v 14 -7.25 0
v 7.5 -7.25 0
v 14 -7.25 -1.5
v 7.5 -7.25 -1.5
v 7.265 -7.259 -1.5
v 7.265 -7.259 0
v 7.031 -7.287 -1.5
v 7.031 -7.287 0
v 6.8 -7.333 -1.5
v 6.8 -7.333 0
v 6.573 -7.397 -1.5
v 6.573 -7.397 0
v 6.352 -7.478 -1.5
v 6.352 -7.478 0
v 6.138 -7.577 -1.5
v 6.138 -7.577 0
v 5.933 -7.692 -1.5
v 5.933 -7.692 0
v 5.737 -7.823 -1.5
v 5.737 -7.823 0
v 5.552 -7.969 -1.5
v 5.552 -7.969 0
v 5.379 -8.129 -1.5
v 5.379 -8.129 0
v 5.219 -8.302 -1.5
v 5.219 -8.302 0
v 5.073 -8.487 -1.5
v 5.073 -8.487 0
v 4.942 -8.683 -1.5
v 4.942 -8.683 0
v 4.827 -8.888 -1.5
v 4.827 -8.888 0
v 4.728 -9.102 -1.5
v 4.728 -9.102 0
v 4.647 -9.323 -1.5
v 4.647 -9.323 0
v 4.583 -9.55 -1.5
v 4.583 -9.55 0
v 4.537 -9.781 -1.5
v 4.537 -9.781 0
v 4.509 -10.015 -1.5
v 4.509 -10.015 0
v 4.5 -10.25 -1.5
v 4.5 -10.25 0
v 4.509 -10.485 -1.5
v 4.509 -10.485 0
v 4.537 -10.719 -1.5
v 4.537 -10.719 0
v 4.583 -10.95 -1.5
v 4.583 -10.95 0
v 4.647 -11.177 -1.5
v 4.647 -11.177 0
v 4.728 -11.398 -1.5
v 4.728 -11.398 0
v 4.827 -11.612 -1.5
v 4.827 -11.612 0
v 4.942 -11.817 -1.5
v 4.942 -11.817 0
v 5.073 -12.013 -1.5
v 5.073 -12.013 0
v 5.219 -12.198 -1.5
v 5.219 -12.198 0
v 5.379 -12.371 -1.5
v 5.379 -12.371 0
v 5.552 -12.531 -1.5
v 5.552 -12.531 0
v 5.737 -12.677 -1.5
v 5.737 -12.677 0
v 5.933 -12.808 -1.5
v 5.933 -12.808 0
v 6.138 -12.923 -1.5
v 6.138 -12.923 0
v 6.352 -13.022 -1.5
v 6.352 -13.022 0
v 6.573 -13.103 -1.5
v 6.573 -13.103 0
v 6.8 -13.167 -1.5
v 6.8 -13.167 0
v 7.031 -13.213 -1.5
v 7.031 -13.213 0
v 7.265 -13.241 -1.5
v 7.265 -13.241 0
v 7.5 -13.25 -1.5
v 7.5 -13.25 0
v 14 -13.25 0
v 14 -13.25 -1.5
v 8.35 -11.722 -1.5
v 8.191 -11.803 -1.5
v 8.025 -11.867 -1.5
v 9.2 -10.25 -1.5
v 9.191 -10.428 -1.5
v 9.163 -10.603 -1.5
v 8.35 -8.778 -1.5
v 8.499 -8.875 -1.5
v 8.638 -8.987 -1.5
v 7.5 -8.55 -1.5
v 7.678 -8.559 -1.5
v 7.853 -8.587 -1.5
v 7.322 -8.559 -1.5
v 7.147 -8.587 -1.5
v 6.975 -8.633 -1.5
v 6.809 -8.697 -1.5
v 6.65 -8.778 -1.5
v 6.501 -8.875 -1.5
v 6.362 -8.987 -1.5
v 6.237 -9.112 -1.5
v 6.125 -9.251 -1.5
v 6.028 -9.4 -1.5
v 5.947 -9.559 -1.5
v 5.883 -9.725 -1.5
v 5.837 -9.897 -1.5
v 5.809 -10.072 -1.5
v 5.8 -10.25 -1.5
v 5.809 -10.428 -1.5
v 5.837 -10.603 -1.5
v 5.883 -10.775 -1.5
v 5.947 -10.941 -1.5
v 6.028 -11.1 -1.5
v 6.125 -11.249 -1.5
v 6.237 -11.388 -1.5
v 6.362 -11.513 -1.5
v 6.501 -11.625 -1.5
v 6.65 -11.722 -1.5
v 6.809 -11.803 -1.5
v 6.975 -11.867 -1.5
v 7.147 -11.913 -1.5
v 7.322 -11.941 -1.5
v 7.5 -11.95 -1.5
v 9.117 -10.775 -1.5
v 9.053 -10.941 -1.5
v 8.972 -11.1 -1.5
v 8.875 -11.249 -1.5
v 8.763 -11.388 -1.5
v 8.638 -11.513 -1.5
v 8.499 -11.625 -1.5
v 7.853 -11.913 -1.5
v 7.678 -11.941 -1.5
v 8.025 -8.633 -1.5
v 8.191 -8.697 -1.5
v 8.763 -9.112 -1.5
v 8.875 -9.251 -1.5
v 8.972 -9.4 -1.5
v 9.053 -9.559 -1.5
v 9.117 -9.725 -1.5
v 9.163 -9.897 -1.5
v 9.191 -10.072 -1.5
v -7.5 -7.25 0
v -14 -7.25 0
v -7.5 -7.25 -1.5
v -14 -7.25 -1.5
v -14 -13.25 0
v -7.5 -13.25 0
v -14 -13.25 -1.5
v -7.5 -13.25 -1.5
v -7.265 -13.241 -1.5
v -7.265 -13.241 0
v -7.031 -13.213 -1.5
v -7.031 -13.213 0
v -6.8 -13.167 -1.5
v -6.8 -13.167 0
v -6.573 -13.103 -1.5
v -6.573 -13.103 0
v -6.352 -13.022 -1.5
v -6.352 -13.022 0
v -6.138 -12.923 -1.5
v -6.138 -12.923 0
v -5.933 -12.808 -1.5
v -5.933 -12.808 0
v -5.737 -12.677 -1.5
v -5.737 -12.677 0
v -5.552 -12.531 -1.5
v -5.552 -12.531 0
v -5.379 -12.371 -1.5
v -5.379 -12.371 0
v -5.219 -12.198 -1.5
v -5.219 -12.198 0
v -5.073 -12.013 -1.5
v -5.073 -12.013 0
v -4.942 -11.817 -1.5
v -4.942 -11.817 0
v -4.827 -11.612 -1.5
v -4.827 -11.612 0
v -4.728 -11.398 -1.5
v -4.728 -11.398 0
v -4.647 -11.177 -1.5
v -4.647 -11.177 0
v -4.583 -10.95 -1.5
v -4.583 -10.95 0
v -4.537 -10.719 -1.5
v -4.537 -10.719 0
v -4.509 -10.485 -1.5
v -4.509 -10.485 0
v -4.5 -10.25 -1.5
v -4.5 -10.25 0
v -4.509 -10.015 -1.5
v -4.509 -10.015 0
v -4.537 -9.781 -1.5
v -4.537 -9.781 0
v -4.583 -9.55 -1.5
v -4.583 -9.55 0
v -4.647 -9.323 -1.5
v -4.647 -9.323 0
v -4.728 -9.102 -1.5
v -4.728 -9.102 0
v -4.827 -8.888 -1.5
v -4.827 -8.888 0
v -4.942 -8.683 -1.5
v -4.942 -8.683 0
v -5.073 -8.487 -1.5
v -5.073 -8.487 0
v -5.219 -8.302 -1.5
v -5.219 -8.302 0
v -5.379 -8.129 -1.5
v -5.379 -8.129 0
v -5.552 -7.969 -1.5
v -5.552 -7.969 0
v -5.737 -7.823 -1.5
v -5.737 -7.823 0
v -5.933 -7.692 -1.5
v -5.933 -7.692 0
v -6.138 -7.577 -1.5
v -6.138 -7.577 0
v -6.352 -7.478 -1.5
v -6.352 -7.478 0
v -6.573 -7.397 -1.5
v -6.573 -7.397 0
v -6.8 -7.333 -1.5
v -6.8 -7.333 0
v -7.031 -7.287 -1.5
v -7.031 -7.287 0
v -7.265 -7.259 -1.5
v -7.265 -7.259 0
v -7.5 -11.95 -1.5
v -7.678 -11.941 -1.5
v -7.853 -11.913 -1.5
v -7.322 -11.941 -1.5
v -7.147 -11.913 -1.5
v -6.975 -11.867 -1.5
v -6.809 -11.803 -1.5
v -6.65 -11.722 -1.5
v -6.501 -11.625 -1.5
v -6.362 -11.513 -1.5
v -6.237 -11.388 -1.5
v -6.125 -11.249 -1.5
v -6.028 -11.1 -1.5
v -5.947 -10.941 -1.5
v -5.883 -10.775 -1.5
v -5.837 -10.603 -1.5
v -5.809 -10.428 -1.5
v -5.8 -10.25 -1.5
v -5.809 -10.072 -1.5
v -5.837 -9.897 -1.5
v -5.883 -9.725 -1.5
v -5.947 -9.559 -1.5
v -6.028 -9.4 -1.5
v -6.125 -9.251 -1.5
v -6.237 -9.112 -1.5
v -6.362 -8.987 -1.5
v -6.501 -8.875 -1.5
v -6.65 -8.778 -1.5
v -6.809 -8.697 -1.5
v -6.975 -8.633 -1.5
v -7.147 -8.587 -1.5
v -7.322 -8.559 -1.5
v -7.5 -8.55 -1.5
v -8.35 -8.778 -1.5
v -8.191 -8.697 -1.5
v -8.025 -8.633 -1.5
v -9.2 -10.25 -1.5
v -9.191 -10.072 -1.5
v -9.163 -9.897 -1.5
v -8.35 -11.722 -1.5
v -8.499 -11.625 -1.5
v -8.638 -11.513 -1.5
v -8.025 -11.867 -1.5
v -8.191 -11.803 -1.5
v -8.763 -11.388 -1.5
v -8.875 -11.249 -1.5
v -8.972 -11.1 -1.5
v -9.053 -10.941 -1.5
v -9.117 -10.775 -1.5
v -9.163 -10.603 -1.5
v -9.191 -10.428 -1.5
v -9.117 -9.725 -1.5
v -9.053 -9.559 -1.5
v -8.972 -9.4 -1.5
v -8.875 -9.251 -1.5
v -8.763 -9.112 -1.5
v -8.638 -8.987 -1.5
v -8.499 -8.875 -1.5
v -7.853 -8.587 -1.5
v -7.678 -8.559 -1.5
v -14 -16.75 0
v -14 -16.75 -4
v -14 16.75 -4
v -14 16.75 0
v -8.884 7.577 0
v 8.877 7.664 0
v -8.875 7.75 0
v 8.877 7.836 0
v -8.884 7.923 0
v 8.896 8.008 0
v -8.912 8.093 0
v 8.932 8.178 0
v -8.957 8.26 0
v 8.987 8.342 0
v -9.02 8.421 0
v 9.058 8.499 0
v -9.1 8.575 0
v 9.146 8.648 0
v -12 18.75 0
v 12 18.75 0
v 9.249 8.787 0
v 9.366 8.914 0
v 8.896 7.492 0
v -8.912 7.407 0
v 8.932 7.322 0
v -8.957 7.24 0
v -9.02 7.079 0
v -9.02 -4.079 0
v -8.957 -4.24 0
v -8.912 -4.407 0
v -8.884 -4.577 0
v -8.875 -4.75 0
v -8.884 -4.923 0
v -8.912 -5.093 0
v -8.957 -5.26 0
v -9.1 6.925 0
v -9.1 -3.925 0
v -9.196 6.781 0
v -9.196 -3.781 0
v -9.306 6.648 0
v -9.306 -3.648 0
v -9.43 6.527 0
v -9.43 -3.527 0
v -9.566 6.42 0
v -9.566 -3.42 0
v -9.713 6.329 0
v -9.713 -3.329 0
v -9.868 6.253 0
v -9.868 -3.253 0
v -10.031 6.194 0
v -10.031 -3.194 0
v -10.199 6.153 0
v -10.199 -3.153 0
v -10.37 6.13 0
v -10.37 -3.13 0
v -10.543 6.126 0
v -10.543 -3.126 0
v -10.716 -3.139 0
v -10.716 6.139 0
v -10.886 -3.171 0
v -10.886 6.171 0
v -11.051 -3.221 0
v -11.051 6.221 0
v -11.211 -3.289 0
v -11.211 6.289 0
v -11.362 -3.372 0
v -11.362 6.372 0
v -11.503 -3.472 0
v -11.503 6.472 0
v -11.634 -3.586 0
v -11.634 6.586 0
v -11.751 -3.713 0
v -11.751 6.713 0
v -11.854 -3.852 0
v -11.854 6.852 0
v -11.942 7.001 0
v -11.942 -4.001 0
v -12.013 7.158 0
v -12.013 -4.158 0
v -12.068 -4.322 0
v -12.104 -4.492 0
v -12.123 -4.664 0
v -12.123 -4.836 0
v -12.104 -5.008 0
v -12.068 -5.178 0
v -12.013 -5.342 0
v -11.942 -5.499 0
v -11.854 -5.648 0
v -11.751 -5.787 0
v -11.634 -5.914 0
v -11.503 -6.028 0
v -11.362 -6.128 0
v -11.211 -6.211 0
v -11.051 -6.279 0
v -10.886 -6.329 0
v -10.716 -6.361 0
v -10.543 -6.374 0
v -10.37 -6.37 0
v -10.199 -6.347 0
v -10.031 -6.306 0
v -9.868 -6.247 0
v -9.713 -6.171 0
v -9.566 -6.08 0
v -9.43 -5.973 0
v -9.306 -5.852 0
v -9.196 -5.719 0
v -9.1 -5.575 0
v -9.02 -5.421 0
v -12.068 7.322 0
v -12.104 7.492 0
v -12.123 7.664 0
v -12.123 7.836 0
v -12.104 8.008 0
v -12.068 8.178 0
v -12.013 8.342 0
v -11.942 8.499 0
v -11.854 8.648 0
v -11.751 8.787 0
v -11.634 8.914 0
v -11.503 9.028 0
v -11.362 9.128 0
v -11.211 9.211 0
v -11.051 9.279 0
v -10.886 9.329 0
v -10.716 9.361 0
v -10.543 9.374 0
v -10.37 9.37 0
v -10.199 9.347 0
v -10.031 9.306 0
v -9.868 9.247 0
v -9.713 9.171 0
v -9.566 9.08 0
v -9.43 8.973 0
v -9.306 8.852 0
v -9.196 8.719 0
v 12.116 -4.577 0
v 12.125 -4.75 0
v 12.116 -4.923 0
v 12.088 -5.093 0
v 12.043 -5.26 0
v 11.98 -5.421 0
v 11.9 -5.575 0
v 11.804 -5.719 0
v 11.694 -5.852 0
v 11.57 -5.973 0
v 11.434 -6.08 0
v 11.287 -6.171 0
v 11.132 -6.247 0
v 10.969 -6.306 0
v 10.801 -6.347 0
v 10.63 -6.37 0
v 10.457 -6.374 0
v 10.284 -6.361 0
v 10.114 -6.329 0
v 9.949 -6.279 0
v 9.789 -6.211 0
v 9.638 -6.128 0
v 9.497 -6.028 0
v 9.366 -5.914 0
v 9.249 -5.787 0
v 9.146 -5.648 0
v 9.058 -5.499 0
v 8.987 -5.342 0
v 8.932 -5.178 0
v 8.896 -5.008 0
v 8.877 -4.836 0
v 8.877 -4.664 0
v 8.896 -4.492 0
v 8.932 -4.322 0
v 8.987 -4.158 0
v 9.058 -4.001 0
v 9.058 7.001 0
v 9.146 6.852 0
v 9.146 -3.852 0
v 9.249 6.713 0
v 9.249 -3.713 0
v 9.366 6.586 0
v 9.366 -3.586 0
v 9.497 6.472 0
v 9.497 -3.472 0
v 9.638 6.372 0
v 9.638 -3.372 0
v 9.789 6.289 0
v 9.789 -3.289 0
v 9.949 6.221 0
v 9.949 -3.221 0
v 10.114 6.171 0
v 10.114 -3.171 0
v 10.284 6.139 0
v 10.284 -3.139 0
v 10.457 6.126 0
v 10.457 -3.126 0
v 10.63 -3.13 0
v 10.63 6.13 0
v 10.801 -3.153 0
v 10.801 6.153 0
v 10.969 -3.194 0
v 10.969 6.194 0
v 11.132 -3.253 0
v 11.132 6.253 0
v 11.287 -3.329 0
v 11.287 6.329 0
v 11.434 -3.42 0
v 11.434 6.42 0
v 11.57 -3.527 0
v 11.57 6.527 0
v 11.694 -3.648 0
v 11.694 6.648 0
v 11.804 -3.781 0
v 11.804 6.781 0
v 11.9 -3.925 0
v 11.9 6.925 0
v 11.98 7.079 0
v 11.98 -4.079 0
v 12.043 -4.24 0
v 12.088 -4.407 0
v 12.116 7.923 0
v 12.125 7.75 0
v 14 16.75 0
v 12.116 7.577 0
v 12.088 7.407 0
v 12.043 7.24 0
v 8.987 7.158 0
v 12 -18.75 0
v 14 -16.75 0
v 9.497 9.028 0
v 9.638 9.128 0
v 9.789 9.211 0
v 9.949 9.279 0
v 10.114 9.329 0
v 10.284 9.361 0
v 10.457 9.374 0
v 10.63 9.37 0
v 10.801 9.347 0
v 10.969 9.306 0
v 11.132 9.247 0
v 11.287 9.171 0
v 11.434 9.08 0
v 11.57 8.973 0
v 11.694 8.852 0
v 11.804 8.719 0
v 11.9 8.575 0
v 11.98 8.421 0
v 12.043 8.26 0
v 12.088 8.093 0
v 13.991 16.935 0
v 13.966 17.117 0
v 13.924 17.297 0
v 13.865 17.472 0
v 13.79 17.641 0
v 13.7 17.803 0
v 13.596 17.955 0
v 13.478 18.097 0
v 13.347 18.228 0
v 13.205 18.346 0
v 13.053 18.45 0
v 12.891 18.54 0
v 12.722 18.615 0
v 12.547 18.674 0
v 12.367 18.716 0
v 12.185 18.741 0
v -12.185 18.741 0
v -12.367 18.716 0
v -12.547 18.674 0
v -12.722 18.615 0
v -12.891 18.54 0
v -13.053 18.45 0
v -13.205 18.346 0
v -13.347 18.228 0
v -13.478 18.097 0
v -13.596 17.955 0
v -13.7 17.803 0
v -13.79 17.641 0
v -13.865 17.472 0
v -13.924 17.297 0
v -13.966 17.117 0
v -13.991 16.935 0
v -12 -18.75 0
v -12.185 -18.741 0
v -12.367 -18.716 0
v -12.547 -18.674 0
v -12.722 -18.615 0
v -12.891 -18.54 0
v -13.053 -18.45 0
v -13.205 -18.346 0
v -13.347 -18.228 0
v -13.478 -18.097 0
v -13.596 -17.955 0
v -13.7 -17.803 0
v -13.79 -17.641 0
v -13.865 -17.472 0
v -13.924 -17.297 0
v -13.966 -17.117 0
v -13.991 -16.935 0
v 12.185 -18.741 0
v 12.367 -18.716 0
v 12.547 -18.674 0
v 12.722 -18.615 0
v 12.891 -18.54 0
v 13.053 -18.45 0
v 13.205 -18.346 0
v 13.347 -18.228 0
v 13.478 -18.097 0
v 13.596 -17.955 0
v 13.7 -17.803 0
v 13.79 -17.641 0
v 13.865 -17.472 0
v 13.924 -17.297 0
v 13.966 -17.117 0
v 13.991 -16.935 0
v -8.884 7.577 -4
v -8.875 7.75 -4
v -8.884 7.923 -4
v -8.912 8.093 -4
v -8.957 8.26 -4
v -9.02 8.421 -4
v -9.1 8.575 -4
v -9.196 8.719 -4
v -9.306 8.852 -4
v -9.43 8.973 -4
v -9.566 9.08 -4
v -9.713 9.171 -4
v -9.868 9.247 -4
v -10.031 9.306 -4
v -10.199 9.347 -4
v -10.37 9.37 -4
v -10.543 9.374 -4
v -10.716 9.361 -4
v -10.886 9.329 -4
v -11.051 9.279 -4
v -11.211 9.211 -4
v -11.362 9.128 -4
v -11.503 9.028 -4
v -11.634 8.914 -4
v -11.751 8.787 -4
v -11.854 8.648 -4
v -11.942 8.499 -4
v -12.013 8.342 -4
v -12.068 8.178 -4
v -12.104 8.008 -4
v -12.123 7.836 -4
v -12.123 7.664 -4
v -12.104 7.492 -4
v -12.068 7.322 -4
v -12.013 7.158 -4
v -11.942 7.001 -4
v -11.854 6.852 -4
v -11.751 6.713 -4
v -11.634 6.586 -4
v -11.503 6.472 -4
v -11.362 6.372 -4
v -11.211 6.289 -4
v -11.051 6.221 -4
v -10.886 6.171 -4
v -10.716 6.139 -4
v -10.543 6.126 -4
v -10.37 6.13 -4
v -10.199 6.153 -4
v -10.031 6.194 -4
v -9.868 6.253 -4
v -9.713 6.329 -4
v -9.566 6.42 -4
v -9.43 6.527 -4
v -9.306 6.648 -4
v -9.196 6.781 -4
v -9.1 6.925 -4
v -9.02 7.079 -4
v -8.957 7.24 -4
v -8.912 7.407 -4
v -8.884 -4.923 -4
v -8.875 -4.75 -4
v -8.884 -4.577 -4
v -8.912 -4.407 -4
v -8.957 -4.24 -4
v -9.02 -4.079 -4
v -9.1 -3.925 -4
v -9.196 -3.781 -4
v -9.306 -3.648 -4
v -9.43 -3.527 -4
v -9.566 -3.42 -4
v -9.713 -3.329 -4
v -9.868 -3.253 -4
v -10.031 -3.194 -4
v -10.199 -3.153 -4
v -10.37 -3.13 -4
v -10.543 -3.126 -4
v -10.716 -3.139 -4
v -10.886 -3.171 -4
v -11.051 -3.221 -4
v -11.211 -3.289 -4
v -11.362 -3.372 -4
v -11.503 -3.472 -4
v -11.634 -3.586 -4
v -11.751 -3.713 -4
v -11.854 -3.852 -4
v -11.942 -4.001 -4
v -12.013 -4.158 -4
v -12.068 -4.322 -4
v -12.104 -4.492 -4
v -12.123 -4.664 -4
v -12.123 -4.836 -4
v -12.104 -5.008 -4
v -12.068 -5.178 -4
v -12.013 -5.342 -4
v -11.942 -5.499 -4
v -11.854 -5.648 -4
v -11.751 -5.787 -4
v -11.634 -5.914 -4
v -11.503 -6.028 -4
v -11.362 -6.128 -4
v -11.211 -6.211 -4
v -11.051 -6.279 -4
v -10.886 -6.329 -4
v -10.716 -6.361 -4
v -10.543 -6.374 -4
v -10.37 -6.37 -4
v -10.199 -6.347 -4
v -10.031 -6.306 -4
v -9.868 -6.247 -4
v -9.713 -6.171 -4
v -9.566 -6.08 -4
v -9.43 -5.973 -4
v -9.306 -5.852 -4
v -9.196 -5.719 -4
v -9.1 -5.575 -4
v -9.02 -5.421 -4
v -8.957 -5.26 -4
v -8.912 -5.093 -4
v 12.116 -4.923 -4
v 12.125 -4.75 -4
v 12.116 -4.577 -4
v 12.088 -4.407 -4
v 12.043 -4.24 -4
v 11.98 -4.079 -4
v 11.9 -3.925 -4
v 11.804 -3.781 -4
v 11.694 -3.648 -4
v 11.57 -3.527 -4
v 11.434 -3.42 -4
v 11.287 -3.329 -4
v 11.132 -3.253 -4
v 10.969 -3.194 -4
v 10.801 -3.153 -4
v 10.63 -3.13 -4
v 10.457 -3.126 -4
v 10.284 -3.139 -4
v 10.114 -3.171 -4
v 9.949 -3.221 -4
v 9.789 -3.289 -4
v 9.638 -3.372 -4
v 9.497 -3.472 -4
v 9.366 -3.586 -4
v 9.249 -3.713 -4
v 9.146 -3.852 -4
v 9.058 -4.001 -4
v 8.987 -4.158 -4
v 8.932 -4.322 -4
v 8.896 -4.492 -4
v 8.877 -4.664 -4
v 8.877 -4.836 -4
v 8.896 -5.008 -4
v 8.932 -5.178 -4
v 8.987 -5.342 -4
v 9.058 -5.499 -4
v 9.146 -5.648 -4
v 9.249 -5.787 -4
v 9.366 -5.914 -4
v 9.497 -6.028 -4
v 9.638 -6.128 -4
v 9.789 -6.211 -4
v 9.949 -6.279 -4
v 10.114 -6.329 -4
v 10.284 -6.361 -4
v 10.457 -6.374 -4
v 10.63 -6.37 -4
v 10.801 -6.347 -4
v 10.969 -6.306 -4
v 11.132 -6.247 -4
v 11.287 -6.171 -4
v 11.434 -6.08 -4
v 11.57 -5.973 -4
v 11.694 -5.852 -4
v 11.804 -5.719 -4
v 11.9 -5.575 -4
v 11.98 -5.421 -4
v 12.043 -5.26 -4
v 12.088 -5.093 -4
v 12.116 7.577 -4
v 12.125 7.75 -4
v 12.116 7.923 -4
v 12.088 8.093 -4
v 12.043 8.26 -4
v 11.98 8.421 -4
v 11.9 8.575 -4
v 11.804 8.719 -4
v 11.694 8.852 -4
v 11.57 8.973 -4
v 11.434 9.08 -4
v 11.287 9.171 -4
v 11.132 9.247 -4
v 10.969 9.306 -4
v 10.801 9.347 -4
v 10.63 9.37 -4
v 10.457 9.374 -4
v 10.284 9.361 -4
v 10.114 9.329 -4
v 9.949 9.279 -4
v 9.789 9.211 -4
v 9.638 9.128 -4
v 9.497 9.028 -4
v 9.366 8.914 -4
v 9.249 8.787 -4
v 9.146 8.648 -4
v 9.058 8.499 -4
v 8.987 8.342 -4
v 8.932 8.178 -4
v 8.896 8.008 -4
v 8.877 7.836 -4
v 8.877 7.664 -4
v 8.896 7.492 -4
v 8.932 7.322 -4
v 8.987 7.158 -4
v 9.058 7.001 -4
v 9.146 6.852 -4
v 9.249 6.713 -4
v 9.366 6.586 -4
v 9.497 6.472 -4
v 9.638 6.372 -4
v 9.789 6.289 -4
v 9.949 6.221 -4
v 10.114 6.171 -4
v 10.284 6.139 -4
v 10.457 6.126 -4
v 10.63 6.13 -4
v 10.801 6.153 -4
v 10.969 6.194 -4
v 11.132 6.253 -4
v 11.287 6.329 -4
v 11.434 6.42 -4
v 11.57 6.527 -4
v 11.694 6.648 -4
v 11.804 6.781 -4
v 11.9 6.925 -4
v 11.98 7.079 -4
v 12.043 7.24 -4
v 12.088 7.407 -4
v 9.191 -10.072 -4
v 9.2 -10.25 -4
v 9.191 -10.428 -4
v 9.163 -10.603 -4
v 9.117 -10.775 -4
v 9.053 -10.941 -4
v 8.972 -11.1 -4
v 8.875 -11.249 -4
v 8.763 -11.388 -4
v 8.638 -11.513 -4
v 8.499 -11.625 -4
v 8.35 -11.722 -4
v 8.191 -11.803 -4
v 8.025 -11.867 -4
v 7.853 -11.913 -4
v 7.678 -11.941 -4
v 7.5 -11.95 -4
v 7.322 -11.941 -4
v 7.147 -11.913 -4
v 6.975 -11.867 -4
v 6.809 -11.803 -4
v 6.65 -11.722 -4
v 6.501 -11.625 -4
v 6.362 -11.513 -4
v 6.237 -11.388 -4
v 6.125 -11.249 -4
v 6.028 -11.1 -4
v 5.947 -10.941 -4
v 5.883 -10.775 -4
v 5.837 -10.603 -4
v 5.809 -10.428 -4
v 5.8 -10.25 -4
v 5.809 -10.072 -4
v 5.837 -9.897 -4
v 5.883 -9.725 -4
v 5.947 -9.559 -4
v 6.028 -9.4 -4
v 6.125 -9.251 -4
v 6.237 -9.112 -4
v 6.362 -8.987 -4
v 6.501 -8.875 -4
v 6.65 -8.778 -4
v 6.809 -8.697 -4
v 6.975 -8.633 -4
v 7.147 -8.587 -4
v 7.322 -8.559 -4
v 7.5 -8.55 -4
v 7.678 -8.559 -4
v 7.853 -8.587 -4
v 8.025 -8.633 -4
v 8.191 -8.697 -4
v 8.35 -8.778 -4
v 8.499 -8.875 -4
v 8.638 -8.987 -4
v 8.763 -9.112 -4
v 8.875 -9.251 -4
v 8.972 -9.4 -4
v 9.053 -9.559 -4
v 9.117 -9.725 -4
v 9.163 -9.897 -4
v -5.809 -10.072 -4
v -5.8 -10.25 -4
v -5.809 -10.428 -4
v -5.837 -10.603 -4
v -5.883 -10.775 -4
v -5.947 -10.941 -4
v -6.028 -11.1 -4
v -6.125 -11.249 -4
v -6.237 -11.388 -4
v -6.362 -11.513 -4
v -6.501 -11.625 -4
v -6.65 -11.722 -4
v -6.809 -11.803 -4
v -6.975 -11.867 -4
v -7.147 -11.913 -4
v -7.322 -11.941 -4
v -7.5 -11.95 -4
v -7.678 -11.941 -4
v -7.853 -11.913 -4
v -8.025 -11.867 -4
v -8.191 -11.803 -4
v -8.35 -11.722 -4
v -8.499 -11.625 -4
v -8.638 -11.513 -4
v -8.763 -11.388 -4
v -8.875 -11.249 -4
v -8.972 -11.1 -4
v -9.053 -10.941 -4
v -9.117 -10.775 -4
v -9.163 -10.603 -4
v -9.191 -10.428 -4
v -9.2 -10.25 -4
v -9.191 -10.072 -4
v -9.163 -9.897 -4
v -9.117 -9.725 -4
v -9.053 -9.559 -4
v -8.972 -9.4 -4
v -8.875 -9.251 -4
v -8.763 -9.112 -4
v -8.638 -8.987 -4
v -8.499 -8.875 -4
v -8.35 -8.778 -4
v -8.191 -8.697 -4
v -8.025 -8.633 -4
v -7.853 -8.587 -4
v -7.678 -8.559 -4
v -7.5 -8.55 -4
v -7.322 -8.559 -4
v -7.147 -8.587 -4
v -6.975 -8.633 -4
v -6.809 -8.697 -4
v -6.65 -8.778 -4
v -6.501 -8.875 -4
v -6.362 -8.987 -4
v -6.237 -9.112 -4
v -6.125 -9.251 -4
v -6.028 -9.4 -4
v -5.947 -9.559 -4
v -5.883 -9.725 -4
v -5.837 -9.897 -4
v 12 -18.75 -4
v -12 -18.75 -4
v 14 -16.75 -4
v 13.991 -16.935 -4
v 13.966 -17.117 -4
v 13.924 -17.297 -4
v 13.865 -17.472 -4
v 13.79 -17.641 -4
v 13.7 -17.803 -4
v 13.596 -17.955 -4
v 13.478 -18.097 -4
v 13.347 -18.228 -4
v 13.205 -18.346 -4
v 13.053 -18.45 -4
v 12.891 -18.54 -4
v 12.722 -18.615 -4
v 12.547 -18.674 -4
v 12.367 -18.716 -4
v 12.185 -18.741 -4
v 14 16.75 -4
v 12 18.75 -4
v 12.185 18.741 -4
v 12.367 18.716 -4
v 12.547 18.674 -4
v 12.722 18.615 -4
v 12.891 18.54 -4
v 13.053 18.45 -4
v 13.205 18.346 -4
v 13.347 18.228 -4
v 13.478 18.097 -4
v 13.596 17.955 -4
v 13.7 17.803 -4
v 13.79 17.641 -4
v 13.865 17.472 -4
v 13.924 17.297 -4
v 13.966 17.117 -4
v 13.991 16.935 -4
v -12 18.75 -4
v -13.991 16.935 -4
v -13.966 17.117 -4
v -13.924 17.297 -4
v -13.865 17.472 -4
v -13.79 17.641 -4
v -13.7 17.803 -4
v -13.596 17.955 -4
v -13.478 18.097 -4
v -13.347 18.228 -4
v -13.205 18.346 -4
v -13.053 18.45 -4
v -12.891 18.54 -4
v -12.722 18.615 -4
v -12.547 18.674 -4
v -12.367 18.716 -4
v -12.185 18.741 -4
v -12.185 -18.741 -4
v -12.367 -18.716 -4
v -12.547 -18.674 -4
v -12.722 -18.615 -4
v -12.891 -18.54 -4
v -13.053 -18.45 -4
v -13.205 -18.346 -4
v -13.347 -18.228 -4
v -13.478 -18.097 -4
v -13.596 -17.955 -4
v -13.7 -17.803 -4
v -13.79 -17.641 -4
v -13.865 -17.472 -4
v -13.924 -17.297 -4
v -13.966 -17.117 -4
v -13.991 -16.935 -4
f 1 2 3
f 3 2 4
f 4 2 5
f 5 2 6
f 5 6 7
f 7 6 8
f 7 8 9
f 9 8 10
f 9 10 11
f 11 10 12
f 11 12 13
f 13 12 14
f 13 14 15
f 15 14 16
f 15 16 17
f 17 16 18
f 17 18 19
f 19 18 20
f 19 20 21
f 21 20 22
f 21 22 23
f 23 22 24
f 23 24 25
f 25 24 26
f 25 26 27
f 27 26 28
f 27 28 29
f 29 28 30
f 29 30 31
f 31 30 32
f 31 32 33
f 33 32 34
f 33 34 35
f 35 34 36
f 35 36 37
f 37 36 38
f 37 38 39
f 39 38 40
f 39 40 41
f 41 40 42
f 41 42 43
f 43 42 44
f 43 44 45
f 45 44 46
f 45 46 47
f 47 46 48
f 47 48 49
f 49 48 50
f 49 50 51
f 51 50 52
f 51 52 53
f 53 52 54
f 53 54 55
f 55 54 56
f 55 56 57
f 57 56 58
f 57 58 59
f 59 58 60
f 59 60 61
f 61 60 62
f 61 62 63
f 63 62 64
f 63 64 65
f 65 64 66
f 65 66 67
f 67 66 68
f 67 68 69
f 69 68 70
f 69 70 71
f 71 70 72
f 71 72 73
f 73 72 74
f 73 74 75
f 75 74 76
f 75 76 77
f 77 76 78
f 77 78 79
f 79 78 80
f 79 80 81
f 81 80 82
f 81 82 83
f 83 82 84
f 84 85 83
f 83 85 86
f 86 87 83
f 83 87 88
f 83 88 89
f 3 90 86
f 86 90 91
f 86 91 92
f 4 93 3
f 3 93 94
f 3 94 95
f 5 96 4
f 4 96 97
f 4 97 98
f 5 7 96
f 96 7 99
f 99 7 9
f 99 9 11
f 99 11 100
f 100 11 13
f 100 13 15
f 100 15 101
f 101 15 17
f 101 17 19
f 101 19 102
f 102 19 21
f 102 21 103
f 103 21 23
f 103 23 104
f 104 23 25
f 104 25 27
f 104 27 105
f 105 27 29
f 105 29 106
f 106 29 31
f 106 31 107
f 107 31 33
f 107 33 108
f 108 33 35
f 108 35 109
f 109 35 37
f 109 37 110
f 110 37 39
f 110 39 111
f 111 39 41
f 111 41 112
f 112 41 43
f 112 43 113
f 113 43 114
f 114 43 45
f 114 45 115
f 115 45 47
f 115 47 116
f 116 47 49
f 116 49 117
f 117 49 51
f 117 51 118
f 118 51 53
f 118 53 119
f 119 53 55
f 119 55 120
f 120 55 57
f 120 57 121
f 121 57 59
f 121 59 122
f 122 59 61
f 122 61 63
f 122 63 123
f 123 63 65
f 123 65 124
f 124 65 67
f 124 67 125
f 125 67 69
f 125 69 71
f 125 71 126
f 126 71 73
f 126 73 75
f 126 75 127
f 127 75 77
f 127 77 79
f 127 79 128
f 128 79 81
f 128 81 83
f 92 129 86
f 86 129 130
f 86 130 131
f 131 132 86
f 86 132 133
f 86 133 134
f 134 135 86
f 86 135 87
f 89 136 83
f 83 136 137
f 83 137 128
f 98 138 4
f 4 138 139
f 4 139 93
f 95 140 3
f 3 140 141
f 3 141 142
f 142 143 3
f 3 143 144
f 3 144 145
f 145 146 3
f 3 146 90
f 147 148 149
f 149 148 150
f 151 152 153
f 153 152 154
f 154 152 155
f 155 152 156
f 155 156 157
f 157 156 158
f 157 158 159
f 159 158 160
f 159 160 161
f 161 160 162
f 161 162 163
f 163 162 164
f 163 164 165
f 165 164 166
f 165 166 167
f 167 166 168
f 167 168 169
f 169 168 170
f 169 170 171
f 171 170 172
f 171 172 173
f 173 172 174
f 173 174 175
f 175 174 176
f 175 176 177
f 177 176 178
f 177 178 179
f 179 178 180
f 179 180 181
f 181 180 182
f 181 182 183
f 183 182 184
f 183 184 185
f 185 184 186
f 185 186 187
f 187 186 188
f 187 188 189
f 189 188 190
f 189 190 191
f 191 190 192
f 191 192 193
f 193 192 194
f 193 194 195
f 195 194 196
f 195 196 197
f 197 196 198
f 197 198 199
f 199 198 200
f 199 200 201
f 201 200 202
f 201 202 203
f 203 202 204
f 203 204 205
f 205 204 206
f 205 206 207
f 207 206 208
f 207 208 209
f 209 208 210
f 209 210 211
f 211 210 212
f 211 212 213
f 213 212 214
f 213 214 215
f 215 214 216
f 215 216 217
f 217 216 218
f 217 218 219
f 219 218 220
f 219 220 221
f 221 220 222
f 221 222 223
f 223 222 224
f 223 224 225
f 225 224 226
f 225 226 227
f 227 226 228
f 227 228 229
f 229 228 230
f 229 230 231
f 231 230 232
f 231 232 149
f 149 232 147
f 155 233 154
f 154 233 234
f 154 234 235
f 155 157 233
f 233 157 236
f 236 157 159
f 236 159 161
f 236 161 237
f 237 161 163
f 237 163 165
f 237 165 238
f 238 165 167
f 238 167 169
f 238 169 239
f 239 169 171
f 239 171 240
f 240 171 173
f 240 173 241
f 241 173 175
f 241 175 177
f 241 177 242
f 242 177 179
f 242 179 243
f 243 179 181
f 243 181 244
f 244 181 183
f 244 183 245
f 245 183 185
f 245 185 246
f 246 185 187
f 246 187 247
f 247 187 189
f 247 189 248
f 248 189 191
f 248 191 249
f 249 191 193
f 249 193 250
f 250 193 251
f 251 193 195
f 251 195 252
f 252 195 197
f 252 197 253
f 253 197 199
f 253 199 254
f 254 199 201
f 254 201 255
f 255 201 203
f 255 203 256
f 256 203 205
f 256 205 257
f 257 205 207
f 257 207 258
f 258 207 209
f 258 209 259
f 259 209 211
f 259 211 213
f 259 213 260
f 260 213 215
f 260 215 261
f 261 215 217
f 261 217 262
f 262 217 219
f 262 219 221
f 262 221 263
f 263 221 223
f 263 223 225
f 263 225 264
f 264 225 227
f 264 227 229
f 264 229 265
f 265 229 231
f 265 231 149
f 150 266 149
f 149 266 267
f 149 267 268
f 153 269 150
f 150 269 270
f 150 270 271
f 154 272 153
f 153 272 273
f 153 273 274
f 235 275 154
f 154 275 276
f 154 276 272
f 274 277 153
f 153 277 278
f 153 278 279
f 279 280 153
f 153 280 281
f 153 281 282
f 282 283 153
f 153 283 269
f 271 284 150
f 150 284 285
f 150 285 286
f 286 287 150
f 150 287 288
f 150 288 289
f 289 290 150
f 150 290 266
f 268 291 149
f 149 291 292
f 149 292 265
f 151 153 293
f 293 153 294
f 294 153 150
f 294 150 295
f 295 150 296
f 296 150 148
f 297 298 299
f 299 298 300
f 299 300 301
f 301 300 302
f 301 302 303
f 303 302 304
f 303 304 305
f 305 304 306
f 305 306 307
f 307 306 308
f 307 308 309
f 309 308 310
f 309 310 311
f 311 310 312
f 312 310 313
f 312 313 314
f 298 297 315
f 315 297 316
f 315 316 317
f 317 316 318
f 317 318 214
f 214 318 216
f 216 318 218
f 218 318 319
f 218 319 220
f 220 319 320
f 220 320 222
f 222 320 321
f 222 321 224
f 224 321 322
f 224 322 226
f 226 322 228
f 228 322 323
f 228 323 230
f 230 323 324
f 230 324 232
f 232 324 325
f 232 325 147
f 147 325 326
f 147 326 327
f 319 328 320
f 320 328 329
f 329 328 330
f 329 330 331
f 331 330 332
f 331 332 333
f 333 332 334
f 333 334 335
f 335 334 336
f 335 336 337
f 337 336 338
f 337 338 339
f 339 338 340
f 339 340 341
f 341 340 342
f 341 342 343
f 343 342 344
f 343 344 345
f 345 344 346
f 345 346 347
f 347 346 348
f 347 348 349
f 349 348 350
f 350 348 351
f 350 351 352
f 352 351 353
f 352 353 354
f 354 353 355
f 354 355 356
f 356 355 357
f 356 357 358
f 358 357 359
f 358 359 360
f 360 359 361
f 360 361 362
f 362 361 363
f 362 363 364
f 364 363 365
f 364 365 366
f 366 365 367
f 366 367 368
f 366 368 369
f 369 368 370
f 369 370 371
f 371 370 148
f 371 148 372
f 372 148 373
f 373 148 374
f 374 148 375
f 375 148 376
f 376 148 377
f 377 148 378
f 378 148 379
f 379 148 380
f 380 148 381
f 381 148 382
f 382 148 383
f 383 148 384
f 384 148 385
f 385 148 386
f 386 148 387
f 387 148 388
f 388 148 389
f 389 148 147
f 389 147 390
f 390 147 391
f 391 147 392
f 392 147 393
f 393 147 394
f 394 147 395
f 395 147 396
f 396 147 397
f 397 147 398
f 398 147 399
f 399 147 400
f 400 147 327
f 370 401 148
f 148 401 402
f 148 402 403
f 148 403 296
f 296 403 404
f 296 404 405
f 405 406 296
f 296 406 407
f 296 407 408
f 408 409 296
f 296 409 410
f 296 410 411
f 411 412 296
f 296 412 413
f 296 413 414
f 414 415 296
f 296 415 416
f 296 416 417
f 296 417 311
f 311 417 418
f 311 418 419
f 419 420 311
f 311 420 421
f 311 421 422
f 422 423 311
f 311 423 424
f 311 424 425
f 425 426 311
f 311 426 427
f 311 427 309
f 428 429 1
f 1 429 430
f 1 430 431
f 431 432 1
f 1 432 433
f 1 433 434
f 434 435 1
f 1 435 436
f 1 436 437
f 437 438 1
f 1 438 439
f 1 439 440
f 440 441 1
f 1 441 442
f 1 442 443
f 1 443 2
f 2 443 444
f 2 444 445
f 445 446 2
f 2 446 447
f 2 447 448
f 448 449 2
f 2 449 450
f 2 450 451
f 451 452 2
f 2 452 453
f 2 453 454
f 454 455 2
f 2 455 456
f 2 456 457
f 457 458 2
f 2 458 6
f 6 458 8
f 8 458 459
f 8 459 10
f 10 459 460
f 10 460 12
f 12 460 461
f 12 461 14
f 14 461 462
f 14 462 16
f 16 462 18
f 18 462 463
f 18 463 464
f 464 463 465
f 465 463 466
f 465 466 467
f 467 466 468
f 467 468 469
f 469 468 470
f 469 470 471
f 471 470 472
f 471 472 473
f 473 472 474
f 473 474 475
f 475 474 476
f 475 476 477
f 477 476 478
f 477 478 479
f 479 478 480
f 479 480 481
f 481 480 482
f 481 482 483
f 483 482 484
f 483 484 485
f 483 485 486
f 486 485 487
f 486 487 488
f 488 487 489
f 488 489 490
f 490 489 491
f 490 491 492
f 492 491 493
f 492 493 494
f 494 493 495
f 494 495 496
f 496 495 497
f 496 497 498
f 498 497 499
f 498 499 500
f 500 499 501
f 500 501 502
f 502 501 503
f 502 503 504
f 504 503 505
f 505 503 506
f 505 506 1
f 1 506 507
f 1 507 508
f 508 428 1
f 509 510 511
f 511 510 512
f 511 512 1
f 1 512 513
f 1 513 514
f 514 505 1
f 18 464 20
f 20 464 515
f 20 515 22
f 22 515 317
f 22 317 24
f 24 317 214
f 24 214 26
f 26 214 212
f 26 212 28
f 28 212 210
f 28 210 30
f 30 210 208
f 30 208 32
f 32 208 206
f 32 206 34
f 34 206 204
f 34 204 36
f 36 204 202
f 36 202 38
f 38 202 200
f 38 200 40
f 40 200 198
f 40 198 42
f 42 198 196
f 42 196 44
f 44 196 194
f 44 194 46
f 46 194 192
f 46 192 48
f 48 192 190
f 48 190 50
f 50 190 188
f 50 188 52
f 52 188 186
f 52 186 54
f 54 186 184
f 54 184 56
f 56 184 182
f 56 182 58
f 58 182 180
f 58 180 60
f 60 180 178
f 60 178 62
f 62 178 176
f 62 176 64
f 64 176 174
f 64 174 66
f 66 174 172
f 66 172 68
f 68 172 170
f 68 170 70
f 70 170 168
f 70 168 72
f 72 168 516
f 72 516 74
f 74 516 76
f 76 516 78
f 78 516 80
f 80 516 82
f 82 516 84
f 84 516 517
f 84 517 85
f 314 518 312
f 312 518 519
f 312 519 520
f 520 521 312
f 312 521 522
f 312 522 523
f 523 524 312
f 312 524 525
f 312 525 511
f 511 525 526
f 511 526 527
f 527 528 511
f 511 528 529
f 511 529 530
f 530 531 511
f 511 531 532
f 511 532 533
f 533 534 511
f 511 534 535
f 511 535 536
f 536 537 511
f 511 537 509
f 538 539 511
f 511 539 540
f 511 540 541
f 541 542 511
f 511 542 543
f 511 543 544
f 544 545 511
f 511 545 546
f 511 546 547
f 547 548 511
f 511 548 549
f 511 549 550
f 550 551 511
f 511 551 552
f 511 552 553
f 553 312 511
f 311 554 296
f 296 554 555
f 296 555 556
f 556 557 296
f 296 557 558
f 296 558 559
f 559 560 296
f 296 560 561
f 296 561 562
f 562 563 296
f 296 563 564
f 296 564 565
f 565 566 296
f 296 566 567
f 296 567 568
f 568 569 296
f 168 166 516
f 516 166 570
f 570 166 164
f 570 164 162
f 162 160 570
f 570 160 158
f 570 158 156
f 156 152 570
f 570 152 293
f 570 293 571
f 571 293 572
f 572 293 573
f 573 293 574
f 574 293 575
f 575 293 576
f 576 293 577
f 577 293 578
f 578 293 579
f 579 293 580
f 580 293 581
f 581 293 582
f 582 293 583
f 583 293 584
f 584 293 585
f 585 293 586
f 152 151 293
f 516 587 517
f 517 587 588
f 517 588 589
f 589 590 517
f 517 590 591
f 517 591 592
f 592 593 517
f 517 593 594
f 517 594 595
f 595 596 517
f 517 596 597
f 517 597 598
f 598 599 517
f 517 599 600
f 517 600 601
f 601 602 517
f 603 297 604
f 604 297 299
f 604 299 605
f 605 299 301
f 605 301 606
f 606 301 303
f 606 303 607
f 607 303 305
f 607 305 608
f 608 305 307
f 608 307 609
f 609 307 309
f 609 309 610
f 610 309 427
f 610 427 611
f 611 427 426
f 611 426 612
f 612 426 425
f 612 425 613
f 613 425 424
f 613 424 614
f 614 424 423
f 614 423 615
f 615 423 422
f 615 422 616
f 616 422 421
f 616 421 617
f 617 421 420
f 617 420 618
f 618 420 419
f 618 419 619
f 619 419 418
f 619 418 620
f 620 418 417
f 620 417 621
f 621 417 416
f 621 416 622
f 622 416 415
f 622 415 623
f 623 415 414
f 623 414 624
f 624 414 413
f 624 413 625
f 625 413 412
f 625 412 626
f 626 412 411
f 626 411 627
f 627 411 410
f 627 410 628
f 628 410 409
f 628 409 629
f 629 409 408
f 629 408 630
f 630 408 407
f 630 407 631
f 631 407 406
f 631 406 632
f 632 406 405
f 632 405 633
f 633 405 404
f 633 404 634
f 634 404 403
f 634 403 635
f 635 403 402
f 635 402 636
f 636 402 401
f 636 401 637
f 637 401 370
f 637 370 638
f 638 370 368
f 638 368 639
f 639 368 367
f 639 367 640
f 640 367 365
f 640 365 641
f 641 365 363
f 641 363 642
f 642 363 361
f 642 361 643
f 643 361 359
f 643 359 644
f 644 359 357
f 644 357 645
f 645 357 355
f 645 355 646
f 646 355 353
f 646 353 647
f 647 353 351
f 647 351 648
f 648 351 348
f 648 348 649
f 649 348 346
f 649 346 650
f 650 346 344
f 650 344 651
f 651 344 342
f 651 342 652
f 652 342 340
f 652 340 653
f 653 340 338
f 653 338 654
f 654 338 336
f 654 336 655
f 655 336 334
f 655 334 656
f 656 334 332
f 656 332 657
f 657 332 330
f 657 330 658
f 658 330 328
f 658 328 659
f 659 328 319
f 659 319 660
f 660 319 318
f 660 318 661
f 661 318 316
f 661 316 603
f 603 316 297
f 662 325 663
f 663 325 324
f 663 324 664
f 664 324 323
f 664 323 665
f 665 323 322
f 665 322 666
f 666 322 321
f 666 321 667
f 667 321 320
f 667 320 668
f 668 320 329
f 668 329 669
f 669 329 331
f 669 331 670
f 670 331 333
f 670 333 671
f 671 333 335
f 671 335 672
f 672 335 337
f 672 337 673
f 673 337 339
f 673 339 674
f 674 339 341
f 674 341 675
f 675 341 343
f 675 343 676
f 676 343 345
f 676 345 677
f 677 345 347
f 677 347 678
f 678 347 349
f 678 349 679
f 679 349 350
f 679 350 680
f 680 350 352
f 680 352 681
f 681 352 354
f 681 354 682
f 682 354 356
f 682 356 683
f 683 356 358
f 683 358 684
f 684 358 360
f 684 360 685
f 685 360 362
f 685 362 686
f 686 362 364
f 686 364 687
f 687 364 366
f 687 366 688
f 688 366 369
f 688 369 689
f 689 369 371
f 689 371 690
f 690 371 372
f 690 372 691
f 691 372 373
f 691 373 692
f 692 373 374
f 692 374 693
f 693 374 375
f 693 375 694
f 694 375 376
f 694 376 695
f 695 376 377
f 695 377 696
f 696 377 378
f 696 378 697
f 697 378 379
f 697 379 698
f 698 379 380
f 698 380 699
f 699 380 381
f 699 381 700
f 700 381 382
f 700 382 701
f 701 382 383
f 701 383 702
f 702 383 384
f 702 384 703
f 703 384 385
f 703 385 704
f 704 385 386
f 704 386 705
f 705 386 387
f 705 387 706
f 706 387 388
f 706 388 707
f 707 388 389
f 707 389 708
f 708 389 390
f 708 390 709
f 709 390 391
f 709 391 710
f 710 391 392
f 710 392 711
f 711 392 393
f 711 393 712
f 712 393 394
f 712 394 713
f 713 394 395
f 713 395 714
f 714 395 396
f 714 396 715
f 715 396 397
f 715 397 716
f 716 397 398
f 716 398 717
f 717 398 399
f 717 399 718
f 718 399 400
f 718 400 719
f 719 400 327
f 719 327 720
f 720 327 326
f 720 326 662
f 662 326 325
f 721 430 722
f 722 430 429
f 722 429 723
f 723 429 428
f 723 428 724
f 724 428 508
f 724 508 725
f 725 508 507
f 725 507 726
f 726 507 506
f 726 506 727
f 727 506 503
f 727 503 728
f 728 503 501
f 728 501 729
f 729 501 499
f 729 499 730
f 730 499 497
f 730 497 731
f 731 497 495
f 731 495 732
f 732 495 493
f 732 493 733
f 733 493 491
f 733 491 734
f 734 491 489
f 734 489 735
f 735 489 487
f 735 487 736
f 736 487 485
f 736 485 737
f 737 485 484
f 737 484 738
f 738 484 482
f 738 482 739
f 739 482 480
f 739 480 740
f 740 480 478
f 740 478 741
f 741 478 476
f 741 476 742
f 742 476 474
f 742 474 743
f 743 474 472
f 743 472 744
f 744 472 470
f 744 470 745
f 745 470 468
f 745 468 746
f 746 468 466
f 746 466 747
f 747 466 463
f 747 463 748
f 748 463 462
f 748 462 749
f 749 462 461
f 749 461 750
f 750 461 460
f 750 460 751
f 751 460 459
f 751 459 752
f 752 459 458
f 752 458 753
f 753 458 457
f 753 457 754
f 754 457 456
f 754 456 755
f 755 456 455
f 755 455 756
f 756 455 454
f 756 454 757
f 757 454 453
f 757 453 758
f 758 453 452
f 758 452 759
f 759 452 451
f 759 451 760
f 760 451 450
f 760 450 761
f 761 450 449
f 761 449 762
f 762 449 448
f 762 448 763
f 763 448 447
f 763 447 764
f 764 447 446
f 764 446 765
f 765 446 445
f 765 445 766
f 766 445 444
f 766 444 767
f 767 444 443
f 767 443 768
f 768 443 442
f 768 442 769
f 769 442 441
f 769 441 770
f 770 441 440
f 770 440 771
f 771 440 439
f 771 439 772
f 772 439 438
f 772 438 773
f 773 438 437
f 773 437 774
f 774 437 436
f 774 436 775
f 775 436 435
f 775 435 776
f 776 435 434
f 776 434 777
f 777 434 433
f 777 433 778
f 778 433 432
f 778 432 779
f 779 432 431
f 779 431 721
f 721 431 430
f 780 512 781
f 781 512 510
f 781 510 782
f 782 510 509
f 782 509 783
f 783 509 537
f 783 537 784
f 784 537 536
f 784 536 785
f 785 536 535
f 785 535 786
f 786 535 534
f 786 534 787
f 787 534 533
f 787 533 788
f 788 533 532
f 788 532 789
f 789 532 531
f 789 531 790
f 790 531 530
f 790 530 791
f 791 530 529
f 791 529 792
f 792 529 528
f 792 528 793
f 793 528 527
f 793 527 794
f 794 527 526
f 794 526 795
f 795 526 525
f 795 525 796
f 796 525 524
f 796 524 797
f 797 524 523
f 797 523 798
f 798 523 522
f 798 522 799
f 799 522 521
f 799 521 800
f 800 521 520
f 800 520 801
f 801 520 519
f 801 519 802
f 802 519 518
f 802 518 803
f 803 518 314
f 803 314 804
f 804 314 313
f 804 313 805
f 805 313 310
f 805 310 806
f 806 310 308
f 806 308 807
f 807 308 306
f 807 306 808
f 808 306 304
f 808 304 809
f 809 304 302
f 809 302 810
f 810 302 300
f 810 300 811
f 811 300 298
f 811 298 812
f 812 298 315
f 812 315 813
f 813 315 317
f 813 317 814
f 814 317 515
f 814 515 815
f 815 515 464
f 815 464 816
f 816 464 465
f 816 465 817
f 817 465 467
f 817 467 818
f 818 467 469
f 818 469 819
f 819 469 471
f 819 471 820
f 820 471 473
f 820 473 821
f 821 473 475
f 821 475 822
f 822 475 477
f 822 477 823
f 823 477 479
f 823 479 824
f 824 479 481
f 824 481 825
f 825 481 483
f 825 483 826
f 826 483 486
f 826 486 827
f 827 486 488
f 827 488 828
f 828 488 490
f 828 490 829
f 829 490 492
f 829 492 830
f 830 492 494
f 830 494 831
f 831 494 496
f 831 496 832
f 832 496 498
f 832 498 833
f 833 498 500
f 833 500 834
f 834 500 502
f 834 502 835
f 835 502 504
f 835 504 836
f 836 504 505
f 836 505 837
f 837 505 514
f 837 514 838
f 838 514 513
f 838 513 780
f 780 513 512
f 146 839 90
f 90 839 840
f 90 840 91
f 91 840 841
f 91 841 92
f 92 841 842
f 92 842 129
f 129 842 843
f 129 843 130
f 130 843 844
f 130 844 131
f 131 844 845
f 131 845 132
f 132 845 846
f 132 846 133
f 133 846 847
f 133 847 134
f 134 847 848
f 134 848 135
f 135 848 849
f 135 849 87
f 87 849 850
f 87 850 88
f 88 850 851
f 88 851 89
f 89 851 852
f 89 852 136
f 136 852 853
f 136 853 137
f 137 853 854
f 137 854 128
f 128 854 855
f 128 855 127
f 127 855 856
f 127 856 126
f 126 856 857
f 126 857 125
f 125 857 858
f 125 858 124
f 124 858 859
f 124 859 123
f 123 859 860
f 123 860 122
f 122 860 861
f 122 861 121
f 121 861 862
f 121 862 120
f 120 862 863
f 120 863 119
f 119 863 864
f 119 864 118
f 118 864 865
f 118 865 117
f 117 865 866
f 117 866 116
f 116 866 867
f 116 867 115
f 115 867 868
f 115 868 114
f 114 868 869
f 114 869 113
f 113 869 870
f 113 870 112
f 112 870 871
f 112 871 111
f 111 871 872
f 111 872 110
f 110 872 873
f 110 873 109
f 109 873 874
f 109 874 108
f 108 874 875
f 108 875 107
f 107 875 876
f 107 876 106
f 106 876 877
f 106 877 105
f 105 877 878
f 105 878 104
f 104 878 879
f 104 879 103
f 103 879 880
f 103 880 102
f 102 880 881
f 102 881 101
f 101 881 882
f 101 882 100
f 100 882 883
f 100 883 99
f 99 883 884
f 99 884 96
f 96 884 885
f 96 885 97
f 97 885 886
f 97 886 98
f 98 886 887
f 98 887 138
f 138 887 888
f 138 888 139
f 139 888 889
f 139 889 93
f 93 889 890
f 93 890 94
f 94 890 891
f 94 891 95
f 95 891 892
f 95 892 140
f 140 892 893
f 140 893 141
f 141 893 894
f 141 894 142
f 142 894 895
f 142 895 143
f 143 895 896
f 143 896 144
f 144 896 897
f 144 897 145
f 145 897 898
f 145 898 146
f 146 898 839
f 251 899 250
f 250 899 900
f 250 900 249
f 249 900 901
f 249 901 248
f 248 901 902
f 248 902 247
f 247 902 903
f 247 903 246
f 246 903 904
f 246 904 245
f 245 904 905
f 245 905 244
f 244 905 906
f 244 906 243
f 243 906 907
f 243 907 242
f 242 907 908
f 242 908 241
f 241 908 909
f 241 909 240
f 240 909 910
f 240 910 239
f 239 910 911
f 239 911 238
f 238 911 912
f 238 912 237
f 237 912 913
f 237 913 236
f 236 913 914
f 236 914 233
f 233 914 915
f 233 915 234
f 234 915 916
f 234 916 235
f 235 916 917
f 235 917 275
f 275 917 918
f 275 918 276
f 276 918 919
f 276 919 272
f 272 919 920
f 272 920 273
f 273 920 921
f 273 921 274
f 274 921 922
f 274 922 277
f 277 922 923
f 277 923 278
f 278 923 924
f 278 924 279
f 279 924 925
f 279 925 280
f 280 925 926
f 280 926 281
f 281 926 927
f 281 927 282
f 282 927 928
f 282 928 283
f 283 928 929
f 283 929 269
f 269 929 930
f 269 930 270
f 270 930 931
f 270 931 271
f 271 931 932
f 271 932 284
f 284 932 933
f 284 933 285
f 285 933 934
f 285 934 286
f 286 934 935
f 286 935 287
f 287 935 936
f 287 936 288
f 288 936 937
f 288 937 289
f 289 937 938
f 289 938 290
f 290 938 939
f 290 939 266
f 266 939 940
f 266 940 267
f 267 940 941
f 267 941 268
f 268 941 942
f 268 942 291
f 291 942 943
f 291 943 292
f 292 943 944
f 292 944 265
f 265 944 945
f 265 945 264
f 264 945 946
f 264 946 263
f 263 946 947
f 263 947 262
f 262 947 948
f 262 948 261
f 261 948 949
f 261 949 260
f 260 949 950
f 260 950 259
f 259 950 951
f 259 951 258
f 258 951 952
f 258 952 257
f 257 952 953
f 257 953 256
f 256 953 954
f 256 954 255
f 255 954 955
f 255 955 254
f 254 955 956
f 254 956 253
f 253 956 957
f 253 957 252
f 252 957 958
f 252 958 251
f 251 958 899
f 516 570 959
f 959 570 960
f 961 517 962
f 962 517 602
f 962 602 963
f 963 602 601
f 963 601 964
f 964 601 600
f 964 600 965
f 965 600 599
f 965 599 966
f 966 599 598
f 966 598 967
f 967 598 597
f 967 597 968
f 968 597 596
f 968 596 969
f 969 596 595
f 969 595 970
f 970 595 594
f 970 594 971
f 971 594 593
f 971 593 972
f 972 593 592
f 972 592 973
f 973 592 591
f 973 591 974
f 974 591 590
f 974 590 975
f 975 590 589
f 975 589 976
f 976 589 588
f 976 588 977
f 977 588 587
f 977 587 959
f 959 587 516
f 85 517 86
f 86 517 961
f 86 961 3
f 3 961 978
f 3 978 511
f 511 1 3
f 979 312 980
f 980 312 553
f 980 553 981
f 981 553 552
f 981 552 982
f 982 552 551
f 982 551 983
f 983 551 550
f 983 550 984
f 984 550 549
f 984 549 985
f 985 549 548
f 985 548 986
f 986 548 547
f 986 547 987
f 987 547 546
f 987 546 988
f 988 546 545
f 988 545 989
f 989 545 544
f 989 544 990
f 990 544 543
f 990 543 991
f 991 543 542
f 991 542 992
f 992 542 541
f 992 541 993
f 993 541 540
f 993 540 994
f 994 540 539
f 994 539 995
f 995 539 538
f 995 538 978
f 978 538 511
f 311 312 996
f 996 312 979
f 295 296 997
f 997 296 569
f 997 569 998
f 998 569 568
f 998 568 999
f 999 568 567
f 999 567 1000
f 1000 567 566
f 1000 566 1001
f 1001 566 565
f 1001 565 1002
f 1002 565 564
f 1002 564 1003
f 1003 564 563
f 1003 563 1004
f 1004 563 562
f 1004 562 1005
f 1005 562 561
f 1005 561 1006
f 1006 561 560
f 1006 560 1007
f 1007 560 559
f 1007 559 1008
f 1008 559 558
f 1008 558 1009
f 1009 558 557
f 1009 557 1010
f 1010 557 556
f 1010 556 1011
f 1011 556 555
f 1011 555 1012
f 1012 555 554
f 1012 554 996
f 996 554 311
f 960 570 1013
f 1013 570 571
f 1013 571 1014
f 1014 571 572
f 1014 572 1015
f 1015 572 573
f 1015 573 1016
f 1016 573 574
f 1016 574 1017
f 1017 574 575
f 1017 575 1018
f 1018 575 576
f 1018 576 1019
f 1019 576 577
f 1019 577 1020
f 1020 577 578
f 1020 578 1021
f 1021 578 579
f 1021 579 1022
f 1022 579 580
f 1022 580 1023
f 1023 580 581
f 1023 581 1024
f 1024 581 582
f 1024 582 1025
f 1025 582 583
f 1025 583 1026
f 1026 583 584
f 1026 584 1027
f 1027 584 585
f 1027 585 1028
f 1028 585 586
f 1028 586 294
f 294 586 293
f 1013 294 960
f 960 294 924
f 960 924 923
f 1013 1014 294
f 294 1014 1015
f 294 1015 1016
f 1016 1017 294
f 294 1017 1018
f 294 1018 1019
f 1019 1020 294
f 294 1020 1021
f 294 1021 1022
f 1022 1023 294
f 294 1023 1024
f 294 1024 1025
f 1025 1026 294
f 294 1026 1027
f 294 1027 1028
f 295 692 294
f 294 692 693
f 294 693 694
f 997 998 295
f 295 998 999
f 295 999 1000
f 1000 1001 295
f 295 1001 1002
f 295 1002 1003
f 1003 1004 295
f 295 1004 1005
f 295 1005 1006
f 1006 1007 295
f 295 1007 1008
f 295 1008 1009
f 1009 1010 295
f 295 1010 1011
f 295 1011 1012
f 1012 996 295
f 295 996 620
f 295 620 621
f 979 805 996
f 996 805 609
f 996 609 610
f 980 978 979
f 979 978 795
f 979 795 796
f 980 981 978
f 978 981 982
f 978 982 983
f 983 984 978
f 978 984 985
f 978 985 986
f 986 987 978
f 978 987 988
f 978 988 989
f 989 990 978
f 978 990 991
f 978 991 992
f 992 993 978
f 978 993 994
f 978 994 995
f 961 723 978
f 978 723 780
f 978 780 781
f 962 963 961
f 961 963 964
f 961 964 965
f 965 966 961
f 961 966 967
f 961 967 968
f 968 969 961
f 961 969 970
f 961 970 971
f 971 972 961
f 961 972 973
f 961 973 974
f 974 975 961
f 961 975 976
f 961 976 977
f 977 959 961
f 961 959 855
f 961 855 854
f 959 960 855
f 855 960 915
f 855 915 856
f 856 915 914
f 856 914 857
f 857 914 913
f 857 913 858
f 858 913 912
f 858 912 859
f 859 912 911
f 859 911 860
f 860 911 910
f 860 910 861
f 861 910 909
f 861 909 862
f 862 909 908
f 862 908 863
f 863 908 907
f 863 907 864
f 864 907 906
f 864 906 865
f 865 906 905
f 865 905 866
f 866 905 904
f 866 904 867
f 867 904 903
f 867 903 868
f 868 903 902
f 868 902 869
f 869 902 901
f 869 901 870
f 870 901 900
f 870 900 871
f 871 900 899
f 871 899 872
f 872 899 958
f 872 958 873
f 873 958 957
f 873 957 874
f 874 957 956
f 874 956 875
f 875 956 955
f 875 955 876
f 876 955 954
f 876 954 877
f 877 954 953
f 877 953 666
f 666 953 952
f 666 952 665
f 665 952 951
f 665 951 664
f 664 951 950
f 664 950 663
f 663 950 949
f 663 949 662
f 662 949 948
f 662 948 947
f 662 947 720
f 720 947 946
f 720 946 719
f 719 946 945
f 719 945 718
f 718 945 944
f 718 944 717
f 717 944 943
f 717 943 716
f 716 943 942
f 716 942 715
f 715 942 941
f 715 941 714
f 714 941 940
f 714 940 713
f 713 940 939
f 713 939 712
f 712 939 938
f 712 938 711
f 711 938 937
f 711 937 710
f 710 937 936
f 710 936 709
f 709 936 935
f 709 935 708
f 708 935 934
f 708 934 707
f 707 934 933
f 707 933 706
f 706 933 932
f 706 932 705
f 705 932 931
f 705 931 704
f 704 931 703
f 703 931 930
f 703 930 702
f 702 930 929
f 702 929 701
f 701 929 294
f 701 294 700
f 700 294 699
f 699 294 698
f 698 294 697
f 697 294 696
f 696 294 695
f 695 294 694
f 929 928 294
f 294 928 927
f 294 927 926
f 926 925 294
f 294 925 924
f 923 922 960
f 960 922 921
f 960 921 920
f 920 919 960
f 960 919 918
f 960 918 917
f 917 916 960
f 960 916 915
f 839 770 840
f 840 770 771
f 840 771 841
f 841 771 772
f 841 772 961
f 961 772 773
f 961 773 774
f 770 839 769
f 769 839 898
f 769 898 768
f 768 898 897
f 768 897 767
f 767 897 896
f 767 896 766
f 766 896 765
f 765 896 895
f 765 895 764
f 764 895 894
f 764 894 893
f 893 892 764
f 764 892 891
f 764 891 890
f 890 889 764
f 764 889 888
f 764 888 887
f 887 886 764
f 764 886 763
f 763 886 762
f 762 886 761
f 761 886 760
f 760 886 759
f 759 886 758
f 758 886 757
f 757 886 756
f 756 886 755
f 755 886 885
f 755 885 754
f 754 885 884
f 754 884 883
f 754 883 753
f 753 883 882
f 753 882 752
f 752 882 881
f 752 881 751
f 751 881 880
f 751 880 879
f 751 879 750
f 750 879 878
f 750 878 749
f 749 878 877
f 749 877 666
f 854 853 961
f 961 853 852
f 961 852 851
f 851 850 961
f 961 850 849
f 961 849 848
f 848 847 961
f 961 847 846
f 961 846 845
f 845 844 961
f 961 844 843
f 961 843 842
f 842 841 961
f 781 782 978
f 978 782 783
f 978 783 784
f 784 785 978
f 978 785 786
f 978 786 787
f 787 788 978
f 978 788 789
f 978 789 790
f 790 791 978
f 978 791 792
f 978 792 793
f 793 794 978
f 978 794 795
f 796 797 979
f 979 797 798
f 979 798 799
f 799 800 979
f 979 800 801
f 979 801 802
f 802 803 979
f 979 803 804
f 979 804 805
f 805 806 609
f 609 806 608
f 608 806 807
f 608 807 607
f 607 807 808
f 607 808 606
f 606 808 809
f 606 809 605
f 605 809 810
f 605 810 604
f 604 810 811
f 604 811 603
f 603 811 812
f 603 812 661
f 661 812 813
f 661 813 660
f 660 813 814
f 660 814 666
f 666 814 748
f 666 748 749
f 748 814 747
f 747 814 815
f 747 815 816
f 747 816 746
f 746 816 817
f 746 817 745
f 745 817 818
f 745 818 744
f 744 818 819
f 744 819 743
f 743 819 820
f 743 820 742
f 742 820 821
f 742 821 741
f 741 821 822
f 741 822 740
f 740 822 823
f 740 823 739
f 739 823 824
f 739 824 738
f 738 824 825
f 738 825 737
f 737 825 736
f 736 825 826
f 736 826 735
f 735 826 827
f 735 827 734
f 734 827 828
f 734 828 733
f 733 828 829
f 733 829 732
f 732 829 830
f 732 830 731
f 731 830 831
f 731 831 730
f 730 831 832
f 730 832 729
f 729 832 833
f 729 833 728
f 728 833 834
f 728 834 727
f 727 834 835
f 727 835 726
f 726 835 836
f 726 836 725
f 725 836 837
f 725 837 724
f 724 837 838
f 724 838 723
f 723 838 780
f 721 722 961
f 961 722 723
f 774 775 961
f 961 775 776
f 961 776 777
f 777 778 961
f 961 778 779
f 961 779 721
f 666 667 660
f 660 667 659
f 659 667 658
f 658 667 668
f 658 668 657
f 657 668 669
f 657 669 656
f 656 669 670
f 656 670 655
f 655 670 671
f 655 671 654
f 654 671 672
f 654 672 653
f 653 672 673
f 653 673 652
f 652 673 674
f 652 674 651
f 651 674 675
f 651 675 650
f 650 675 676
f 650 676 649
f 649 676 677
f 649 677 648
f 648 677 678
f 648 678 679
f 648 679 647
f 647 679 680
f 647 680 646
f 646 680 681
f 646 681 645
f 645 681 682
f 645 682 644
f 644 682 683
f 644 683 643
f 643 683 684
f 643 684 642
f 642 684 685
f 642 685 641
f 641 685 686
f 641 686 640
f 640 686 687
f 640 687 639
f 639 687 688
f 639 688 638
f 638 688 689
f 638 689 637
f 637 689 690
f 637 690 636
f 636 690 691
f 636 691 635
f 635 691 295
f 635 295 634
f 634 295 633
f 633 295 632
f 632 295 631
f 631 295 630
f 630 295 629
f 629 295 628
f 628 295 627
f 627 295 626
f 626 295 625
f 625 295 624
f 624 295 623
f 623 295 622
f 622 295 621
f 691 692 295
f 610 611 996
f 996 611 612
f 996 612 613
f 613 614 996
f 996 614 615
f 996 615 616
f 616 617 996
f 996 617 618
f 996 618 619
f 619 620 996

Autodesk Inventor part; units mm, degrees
ref_plane "YZ Plane" through (0, 0, 0) normal (1, 0, 0) x (0, 1, 0)
ref_plane "XZ Plane" through (0, 0, 0) normal (0, 1, 0) x (-1, 0, 0)
ref_plane "XY Plane" through (0, 0, 0) normal (0, 0, 1) x (1, 0, 0)
sketch "Skizze1" plane through (0, 0, 0) normal (0, 0, 1) x (1, 0, 0)
  line L0 (-14, -18.75) -> (14, -18.75)
  line L1 (14, -18.75) -> (14, 18.75)
  line L2 (14, 18.75) -> (-14, 18.75)
  line L3 (-14, 18.75) -> (-14, -18.75)
  line L4 (-14, -18.75) -> (14, 18.75) construction
  line L5 (14, -18.75) -> (-14, 18.75) construction
  circle A0 centre (-10.5, 7.75) radius 1.625
  circle A1 centre (-10.5, -4.75) radius 1.625
  circle A2 centre (10.5, -4.75) radius 1.625
  circle A3 centre (10.5, 7.75) radius 1.625
  line L6 (0, 18.75) -> (0, -18.75) construction
  line L7 (-14, -10.25) -> (14, -10.25) construction
  circle A4 centre (-7.5, -10.25) radius 1.7
  circle A5 centre (7.5, -10.25) radius 1.7
  circle A6 centre (-7.5, -10.25) radius 3
  circle A7 centre (7.5, -10.25) radius 3
  arc A8 (-12, 18.75) -> (-14, 16.75) centre (-12, 16.75) ccw
  arc A9 (14, 16.75) -> (12, 18.75) centre (12, 16.75) ccw
  line L8 (-7.5, -7.25) -> (-14, -7.25)
  line L9 (-7.5, -13.25) -> (-14, -13.25)
  line L10 (-14, -13.25) -> (-14, -7.25)
  line L11 (7.5, -7.25) -> (14, -7.25)
  line L12 (7.5, -13.25) -> (14, -13.25)
  line L13 (14, -13.25) -> (14, -7.25)
  line L14 (-10, -18.75) -> (7, -18.75)
  arc A10 (-14, -16.75) -> (-12, -18.75) centre (-12, -16.75) ccw
  arc A11 (12, -18.75) -> (14, -16.75) centre (12, -16.75) ccw
  point P0 (0, 0)
  point P1 (12.5, -1.6583)
  point P2 (-12.5, -1.6583)
  point P3 (12.5, 1.6583)
  point P4 (-12.5, 1.6583)
  dimension "d0" = 28
  dimension "d1" = 37.5
  dimension "d2" = 3.25
  dimension "d3" = 21
  dimension "d4" = 12.5
  dimension "d6" = 3.4
  dimension "d7" = 15
  dimension "d8" = 6
  dimension "d9" = 2
  dimension "d20" = 11
  dimension "d21" = 29
  dimension "d22" = 8.5
extrude "Extrusion1" add sketch "Skizze1" against normal blind 4 contours A10 L3 L9 A6 L8 A8 L2 A9 L1 L11 A7 L12 A11 L0 | L3 L8 A6 L9 | A6 | L12 A7 L11 L1 | A7
extrude "Extrusion2" cut sketch "Skizze1" against normal blind 1.5 contours L3 L8 A6 L9 | A6 | L12 A7 L11 L1 | A7
properties part number "Camera-Base" material "ABS-Kunststoff"
